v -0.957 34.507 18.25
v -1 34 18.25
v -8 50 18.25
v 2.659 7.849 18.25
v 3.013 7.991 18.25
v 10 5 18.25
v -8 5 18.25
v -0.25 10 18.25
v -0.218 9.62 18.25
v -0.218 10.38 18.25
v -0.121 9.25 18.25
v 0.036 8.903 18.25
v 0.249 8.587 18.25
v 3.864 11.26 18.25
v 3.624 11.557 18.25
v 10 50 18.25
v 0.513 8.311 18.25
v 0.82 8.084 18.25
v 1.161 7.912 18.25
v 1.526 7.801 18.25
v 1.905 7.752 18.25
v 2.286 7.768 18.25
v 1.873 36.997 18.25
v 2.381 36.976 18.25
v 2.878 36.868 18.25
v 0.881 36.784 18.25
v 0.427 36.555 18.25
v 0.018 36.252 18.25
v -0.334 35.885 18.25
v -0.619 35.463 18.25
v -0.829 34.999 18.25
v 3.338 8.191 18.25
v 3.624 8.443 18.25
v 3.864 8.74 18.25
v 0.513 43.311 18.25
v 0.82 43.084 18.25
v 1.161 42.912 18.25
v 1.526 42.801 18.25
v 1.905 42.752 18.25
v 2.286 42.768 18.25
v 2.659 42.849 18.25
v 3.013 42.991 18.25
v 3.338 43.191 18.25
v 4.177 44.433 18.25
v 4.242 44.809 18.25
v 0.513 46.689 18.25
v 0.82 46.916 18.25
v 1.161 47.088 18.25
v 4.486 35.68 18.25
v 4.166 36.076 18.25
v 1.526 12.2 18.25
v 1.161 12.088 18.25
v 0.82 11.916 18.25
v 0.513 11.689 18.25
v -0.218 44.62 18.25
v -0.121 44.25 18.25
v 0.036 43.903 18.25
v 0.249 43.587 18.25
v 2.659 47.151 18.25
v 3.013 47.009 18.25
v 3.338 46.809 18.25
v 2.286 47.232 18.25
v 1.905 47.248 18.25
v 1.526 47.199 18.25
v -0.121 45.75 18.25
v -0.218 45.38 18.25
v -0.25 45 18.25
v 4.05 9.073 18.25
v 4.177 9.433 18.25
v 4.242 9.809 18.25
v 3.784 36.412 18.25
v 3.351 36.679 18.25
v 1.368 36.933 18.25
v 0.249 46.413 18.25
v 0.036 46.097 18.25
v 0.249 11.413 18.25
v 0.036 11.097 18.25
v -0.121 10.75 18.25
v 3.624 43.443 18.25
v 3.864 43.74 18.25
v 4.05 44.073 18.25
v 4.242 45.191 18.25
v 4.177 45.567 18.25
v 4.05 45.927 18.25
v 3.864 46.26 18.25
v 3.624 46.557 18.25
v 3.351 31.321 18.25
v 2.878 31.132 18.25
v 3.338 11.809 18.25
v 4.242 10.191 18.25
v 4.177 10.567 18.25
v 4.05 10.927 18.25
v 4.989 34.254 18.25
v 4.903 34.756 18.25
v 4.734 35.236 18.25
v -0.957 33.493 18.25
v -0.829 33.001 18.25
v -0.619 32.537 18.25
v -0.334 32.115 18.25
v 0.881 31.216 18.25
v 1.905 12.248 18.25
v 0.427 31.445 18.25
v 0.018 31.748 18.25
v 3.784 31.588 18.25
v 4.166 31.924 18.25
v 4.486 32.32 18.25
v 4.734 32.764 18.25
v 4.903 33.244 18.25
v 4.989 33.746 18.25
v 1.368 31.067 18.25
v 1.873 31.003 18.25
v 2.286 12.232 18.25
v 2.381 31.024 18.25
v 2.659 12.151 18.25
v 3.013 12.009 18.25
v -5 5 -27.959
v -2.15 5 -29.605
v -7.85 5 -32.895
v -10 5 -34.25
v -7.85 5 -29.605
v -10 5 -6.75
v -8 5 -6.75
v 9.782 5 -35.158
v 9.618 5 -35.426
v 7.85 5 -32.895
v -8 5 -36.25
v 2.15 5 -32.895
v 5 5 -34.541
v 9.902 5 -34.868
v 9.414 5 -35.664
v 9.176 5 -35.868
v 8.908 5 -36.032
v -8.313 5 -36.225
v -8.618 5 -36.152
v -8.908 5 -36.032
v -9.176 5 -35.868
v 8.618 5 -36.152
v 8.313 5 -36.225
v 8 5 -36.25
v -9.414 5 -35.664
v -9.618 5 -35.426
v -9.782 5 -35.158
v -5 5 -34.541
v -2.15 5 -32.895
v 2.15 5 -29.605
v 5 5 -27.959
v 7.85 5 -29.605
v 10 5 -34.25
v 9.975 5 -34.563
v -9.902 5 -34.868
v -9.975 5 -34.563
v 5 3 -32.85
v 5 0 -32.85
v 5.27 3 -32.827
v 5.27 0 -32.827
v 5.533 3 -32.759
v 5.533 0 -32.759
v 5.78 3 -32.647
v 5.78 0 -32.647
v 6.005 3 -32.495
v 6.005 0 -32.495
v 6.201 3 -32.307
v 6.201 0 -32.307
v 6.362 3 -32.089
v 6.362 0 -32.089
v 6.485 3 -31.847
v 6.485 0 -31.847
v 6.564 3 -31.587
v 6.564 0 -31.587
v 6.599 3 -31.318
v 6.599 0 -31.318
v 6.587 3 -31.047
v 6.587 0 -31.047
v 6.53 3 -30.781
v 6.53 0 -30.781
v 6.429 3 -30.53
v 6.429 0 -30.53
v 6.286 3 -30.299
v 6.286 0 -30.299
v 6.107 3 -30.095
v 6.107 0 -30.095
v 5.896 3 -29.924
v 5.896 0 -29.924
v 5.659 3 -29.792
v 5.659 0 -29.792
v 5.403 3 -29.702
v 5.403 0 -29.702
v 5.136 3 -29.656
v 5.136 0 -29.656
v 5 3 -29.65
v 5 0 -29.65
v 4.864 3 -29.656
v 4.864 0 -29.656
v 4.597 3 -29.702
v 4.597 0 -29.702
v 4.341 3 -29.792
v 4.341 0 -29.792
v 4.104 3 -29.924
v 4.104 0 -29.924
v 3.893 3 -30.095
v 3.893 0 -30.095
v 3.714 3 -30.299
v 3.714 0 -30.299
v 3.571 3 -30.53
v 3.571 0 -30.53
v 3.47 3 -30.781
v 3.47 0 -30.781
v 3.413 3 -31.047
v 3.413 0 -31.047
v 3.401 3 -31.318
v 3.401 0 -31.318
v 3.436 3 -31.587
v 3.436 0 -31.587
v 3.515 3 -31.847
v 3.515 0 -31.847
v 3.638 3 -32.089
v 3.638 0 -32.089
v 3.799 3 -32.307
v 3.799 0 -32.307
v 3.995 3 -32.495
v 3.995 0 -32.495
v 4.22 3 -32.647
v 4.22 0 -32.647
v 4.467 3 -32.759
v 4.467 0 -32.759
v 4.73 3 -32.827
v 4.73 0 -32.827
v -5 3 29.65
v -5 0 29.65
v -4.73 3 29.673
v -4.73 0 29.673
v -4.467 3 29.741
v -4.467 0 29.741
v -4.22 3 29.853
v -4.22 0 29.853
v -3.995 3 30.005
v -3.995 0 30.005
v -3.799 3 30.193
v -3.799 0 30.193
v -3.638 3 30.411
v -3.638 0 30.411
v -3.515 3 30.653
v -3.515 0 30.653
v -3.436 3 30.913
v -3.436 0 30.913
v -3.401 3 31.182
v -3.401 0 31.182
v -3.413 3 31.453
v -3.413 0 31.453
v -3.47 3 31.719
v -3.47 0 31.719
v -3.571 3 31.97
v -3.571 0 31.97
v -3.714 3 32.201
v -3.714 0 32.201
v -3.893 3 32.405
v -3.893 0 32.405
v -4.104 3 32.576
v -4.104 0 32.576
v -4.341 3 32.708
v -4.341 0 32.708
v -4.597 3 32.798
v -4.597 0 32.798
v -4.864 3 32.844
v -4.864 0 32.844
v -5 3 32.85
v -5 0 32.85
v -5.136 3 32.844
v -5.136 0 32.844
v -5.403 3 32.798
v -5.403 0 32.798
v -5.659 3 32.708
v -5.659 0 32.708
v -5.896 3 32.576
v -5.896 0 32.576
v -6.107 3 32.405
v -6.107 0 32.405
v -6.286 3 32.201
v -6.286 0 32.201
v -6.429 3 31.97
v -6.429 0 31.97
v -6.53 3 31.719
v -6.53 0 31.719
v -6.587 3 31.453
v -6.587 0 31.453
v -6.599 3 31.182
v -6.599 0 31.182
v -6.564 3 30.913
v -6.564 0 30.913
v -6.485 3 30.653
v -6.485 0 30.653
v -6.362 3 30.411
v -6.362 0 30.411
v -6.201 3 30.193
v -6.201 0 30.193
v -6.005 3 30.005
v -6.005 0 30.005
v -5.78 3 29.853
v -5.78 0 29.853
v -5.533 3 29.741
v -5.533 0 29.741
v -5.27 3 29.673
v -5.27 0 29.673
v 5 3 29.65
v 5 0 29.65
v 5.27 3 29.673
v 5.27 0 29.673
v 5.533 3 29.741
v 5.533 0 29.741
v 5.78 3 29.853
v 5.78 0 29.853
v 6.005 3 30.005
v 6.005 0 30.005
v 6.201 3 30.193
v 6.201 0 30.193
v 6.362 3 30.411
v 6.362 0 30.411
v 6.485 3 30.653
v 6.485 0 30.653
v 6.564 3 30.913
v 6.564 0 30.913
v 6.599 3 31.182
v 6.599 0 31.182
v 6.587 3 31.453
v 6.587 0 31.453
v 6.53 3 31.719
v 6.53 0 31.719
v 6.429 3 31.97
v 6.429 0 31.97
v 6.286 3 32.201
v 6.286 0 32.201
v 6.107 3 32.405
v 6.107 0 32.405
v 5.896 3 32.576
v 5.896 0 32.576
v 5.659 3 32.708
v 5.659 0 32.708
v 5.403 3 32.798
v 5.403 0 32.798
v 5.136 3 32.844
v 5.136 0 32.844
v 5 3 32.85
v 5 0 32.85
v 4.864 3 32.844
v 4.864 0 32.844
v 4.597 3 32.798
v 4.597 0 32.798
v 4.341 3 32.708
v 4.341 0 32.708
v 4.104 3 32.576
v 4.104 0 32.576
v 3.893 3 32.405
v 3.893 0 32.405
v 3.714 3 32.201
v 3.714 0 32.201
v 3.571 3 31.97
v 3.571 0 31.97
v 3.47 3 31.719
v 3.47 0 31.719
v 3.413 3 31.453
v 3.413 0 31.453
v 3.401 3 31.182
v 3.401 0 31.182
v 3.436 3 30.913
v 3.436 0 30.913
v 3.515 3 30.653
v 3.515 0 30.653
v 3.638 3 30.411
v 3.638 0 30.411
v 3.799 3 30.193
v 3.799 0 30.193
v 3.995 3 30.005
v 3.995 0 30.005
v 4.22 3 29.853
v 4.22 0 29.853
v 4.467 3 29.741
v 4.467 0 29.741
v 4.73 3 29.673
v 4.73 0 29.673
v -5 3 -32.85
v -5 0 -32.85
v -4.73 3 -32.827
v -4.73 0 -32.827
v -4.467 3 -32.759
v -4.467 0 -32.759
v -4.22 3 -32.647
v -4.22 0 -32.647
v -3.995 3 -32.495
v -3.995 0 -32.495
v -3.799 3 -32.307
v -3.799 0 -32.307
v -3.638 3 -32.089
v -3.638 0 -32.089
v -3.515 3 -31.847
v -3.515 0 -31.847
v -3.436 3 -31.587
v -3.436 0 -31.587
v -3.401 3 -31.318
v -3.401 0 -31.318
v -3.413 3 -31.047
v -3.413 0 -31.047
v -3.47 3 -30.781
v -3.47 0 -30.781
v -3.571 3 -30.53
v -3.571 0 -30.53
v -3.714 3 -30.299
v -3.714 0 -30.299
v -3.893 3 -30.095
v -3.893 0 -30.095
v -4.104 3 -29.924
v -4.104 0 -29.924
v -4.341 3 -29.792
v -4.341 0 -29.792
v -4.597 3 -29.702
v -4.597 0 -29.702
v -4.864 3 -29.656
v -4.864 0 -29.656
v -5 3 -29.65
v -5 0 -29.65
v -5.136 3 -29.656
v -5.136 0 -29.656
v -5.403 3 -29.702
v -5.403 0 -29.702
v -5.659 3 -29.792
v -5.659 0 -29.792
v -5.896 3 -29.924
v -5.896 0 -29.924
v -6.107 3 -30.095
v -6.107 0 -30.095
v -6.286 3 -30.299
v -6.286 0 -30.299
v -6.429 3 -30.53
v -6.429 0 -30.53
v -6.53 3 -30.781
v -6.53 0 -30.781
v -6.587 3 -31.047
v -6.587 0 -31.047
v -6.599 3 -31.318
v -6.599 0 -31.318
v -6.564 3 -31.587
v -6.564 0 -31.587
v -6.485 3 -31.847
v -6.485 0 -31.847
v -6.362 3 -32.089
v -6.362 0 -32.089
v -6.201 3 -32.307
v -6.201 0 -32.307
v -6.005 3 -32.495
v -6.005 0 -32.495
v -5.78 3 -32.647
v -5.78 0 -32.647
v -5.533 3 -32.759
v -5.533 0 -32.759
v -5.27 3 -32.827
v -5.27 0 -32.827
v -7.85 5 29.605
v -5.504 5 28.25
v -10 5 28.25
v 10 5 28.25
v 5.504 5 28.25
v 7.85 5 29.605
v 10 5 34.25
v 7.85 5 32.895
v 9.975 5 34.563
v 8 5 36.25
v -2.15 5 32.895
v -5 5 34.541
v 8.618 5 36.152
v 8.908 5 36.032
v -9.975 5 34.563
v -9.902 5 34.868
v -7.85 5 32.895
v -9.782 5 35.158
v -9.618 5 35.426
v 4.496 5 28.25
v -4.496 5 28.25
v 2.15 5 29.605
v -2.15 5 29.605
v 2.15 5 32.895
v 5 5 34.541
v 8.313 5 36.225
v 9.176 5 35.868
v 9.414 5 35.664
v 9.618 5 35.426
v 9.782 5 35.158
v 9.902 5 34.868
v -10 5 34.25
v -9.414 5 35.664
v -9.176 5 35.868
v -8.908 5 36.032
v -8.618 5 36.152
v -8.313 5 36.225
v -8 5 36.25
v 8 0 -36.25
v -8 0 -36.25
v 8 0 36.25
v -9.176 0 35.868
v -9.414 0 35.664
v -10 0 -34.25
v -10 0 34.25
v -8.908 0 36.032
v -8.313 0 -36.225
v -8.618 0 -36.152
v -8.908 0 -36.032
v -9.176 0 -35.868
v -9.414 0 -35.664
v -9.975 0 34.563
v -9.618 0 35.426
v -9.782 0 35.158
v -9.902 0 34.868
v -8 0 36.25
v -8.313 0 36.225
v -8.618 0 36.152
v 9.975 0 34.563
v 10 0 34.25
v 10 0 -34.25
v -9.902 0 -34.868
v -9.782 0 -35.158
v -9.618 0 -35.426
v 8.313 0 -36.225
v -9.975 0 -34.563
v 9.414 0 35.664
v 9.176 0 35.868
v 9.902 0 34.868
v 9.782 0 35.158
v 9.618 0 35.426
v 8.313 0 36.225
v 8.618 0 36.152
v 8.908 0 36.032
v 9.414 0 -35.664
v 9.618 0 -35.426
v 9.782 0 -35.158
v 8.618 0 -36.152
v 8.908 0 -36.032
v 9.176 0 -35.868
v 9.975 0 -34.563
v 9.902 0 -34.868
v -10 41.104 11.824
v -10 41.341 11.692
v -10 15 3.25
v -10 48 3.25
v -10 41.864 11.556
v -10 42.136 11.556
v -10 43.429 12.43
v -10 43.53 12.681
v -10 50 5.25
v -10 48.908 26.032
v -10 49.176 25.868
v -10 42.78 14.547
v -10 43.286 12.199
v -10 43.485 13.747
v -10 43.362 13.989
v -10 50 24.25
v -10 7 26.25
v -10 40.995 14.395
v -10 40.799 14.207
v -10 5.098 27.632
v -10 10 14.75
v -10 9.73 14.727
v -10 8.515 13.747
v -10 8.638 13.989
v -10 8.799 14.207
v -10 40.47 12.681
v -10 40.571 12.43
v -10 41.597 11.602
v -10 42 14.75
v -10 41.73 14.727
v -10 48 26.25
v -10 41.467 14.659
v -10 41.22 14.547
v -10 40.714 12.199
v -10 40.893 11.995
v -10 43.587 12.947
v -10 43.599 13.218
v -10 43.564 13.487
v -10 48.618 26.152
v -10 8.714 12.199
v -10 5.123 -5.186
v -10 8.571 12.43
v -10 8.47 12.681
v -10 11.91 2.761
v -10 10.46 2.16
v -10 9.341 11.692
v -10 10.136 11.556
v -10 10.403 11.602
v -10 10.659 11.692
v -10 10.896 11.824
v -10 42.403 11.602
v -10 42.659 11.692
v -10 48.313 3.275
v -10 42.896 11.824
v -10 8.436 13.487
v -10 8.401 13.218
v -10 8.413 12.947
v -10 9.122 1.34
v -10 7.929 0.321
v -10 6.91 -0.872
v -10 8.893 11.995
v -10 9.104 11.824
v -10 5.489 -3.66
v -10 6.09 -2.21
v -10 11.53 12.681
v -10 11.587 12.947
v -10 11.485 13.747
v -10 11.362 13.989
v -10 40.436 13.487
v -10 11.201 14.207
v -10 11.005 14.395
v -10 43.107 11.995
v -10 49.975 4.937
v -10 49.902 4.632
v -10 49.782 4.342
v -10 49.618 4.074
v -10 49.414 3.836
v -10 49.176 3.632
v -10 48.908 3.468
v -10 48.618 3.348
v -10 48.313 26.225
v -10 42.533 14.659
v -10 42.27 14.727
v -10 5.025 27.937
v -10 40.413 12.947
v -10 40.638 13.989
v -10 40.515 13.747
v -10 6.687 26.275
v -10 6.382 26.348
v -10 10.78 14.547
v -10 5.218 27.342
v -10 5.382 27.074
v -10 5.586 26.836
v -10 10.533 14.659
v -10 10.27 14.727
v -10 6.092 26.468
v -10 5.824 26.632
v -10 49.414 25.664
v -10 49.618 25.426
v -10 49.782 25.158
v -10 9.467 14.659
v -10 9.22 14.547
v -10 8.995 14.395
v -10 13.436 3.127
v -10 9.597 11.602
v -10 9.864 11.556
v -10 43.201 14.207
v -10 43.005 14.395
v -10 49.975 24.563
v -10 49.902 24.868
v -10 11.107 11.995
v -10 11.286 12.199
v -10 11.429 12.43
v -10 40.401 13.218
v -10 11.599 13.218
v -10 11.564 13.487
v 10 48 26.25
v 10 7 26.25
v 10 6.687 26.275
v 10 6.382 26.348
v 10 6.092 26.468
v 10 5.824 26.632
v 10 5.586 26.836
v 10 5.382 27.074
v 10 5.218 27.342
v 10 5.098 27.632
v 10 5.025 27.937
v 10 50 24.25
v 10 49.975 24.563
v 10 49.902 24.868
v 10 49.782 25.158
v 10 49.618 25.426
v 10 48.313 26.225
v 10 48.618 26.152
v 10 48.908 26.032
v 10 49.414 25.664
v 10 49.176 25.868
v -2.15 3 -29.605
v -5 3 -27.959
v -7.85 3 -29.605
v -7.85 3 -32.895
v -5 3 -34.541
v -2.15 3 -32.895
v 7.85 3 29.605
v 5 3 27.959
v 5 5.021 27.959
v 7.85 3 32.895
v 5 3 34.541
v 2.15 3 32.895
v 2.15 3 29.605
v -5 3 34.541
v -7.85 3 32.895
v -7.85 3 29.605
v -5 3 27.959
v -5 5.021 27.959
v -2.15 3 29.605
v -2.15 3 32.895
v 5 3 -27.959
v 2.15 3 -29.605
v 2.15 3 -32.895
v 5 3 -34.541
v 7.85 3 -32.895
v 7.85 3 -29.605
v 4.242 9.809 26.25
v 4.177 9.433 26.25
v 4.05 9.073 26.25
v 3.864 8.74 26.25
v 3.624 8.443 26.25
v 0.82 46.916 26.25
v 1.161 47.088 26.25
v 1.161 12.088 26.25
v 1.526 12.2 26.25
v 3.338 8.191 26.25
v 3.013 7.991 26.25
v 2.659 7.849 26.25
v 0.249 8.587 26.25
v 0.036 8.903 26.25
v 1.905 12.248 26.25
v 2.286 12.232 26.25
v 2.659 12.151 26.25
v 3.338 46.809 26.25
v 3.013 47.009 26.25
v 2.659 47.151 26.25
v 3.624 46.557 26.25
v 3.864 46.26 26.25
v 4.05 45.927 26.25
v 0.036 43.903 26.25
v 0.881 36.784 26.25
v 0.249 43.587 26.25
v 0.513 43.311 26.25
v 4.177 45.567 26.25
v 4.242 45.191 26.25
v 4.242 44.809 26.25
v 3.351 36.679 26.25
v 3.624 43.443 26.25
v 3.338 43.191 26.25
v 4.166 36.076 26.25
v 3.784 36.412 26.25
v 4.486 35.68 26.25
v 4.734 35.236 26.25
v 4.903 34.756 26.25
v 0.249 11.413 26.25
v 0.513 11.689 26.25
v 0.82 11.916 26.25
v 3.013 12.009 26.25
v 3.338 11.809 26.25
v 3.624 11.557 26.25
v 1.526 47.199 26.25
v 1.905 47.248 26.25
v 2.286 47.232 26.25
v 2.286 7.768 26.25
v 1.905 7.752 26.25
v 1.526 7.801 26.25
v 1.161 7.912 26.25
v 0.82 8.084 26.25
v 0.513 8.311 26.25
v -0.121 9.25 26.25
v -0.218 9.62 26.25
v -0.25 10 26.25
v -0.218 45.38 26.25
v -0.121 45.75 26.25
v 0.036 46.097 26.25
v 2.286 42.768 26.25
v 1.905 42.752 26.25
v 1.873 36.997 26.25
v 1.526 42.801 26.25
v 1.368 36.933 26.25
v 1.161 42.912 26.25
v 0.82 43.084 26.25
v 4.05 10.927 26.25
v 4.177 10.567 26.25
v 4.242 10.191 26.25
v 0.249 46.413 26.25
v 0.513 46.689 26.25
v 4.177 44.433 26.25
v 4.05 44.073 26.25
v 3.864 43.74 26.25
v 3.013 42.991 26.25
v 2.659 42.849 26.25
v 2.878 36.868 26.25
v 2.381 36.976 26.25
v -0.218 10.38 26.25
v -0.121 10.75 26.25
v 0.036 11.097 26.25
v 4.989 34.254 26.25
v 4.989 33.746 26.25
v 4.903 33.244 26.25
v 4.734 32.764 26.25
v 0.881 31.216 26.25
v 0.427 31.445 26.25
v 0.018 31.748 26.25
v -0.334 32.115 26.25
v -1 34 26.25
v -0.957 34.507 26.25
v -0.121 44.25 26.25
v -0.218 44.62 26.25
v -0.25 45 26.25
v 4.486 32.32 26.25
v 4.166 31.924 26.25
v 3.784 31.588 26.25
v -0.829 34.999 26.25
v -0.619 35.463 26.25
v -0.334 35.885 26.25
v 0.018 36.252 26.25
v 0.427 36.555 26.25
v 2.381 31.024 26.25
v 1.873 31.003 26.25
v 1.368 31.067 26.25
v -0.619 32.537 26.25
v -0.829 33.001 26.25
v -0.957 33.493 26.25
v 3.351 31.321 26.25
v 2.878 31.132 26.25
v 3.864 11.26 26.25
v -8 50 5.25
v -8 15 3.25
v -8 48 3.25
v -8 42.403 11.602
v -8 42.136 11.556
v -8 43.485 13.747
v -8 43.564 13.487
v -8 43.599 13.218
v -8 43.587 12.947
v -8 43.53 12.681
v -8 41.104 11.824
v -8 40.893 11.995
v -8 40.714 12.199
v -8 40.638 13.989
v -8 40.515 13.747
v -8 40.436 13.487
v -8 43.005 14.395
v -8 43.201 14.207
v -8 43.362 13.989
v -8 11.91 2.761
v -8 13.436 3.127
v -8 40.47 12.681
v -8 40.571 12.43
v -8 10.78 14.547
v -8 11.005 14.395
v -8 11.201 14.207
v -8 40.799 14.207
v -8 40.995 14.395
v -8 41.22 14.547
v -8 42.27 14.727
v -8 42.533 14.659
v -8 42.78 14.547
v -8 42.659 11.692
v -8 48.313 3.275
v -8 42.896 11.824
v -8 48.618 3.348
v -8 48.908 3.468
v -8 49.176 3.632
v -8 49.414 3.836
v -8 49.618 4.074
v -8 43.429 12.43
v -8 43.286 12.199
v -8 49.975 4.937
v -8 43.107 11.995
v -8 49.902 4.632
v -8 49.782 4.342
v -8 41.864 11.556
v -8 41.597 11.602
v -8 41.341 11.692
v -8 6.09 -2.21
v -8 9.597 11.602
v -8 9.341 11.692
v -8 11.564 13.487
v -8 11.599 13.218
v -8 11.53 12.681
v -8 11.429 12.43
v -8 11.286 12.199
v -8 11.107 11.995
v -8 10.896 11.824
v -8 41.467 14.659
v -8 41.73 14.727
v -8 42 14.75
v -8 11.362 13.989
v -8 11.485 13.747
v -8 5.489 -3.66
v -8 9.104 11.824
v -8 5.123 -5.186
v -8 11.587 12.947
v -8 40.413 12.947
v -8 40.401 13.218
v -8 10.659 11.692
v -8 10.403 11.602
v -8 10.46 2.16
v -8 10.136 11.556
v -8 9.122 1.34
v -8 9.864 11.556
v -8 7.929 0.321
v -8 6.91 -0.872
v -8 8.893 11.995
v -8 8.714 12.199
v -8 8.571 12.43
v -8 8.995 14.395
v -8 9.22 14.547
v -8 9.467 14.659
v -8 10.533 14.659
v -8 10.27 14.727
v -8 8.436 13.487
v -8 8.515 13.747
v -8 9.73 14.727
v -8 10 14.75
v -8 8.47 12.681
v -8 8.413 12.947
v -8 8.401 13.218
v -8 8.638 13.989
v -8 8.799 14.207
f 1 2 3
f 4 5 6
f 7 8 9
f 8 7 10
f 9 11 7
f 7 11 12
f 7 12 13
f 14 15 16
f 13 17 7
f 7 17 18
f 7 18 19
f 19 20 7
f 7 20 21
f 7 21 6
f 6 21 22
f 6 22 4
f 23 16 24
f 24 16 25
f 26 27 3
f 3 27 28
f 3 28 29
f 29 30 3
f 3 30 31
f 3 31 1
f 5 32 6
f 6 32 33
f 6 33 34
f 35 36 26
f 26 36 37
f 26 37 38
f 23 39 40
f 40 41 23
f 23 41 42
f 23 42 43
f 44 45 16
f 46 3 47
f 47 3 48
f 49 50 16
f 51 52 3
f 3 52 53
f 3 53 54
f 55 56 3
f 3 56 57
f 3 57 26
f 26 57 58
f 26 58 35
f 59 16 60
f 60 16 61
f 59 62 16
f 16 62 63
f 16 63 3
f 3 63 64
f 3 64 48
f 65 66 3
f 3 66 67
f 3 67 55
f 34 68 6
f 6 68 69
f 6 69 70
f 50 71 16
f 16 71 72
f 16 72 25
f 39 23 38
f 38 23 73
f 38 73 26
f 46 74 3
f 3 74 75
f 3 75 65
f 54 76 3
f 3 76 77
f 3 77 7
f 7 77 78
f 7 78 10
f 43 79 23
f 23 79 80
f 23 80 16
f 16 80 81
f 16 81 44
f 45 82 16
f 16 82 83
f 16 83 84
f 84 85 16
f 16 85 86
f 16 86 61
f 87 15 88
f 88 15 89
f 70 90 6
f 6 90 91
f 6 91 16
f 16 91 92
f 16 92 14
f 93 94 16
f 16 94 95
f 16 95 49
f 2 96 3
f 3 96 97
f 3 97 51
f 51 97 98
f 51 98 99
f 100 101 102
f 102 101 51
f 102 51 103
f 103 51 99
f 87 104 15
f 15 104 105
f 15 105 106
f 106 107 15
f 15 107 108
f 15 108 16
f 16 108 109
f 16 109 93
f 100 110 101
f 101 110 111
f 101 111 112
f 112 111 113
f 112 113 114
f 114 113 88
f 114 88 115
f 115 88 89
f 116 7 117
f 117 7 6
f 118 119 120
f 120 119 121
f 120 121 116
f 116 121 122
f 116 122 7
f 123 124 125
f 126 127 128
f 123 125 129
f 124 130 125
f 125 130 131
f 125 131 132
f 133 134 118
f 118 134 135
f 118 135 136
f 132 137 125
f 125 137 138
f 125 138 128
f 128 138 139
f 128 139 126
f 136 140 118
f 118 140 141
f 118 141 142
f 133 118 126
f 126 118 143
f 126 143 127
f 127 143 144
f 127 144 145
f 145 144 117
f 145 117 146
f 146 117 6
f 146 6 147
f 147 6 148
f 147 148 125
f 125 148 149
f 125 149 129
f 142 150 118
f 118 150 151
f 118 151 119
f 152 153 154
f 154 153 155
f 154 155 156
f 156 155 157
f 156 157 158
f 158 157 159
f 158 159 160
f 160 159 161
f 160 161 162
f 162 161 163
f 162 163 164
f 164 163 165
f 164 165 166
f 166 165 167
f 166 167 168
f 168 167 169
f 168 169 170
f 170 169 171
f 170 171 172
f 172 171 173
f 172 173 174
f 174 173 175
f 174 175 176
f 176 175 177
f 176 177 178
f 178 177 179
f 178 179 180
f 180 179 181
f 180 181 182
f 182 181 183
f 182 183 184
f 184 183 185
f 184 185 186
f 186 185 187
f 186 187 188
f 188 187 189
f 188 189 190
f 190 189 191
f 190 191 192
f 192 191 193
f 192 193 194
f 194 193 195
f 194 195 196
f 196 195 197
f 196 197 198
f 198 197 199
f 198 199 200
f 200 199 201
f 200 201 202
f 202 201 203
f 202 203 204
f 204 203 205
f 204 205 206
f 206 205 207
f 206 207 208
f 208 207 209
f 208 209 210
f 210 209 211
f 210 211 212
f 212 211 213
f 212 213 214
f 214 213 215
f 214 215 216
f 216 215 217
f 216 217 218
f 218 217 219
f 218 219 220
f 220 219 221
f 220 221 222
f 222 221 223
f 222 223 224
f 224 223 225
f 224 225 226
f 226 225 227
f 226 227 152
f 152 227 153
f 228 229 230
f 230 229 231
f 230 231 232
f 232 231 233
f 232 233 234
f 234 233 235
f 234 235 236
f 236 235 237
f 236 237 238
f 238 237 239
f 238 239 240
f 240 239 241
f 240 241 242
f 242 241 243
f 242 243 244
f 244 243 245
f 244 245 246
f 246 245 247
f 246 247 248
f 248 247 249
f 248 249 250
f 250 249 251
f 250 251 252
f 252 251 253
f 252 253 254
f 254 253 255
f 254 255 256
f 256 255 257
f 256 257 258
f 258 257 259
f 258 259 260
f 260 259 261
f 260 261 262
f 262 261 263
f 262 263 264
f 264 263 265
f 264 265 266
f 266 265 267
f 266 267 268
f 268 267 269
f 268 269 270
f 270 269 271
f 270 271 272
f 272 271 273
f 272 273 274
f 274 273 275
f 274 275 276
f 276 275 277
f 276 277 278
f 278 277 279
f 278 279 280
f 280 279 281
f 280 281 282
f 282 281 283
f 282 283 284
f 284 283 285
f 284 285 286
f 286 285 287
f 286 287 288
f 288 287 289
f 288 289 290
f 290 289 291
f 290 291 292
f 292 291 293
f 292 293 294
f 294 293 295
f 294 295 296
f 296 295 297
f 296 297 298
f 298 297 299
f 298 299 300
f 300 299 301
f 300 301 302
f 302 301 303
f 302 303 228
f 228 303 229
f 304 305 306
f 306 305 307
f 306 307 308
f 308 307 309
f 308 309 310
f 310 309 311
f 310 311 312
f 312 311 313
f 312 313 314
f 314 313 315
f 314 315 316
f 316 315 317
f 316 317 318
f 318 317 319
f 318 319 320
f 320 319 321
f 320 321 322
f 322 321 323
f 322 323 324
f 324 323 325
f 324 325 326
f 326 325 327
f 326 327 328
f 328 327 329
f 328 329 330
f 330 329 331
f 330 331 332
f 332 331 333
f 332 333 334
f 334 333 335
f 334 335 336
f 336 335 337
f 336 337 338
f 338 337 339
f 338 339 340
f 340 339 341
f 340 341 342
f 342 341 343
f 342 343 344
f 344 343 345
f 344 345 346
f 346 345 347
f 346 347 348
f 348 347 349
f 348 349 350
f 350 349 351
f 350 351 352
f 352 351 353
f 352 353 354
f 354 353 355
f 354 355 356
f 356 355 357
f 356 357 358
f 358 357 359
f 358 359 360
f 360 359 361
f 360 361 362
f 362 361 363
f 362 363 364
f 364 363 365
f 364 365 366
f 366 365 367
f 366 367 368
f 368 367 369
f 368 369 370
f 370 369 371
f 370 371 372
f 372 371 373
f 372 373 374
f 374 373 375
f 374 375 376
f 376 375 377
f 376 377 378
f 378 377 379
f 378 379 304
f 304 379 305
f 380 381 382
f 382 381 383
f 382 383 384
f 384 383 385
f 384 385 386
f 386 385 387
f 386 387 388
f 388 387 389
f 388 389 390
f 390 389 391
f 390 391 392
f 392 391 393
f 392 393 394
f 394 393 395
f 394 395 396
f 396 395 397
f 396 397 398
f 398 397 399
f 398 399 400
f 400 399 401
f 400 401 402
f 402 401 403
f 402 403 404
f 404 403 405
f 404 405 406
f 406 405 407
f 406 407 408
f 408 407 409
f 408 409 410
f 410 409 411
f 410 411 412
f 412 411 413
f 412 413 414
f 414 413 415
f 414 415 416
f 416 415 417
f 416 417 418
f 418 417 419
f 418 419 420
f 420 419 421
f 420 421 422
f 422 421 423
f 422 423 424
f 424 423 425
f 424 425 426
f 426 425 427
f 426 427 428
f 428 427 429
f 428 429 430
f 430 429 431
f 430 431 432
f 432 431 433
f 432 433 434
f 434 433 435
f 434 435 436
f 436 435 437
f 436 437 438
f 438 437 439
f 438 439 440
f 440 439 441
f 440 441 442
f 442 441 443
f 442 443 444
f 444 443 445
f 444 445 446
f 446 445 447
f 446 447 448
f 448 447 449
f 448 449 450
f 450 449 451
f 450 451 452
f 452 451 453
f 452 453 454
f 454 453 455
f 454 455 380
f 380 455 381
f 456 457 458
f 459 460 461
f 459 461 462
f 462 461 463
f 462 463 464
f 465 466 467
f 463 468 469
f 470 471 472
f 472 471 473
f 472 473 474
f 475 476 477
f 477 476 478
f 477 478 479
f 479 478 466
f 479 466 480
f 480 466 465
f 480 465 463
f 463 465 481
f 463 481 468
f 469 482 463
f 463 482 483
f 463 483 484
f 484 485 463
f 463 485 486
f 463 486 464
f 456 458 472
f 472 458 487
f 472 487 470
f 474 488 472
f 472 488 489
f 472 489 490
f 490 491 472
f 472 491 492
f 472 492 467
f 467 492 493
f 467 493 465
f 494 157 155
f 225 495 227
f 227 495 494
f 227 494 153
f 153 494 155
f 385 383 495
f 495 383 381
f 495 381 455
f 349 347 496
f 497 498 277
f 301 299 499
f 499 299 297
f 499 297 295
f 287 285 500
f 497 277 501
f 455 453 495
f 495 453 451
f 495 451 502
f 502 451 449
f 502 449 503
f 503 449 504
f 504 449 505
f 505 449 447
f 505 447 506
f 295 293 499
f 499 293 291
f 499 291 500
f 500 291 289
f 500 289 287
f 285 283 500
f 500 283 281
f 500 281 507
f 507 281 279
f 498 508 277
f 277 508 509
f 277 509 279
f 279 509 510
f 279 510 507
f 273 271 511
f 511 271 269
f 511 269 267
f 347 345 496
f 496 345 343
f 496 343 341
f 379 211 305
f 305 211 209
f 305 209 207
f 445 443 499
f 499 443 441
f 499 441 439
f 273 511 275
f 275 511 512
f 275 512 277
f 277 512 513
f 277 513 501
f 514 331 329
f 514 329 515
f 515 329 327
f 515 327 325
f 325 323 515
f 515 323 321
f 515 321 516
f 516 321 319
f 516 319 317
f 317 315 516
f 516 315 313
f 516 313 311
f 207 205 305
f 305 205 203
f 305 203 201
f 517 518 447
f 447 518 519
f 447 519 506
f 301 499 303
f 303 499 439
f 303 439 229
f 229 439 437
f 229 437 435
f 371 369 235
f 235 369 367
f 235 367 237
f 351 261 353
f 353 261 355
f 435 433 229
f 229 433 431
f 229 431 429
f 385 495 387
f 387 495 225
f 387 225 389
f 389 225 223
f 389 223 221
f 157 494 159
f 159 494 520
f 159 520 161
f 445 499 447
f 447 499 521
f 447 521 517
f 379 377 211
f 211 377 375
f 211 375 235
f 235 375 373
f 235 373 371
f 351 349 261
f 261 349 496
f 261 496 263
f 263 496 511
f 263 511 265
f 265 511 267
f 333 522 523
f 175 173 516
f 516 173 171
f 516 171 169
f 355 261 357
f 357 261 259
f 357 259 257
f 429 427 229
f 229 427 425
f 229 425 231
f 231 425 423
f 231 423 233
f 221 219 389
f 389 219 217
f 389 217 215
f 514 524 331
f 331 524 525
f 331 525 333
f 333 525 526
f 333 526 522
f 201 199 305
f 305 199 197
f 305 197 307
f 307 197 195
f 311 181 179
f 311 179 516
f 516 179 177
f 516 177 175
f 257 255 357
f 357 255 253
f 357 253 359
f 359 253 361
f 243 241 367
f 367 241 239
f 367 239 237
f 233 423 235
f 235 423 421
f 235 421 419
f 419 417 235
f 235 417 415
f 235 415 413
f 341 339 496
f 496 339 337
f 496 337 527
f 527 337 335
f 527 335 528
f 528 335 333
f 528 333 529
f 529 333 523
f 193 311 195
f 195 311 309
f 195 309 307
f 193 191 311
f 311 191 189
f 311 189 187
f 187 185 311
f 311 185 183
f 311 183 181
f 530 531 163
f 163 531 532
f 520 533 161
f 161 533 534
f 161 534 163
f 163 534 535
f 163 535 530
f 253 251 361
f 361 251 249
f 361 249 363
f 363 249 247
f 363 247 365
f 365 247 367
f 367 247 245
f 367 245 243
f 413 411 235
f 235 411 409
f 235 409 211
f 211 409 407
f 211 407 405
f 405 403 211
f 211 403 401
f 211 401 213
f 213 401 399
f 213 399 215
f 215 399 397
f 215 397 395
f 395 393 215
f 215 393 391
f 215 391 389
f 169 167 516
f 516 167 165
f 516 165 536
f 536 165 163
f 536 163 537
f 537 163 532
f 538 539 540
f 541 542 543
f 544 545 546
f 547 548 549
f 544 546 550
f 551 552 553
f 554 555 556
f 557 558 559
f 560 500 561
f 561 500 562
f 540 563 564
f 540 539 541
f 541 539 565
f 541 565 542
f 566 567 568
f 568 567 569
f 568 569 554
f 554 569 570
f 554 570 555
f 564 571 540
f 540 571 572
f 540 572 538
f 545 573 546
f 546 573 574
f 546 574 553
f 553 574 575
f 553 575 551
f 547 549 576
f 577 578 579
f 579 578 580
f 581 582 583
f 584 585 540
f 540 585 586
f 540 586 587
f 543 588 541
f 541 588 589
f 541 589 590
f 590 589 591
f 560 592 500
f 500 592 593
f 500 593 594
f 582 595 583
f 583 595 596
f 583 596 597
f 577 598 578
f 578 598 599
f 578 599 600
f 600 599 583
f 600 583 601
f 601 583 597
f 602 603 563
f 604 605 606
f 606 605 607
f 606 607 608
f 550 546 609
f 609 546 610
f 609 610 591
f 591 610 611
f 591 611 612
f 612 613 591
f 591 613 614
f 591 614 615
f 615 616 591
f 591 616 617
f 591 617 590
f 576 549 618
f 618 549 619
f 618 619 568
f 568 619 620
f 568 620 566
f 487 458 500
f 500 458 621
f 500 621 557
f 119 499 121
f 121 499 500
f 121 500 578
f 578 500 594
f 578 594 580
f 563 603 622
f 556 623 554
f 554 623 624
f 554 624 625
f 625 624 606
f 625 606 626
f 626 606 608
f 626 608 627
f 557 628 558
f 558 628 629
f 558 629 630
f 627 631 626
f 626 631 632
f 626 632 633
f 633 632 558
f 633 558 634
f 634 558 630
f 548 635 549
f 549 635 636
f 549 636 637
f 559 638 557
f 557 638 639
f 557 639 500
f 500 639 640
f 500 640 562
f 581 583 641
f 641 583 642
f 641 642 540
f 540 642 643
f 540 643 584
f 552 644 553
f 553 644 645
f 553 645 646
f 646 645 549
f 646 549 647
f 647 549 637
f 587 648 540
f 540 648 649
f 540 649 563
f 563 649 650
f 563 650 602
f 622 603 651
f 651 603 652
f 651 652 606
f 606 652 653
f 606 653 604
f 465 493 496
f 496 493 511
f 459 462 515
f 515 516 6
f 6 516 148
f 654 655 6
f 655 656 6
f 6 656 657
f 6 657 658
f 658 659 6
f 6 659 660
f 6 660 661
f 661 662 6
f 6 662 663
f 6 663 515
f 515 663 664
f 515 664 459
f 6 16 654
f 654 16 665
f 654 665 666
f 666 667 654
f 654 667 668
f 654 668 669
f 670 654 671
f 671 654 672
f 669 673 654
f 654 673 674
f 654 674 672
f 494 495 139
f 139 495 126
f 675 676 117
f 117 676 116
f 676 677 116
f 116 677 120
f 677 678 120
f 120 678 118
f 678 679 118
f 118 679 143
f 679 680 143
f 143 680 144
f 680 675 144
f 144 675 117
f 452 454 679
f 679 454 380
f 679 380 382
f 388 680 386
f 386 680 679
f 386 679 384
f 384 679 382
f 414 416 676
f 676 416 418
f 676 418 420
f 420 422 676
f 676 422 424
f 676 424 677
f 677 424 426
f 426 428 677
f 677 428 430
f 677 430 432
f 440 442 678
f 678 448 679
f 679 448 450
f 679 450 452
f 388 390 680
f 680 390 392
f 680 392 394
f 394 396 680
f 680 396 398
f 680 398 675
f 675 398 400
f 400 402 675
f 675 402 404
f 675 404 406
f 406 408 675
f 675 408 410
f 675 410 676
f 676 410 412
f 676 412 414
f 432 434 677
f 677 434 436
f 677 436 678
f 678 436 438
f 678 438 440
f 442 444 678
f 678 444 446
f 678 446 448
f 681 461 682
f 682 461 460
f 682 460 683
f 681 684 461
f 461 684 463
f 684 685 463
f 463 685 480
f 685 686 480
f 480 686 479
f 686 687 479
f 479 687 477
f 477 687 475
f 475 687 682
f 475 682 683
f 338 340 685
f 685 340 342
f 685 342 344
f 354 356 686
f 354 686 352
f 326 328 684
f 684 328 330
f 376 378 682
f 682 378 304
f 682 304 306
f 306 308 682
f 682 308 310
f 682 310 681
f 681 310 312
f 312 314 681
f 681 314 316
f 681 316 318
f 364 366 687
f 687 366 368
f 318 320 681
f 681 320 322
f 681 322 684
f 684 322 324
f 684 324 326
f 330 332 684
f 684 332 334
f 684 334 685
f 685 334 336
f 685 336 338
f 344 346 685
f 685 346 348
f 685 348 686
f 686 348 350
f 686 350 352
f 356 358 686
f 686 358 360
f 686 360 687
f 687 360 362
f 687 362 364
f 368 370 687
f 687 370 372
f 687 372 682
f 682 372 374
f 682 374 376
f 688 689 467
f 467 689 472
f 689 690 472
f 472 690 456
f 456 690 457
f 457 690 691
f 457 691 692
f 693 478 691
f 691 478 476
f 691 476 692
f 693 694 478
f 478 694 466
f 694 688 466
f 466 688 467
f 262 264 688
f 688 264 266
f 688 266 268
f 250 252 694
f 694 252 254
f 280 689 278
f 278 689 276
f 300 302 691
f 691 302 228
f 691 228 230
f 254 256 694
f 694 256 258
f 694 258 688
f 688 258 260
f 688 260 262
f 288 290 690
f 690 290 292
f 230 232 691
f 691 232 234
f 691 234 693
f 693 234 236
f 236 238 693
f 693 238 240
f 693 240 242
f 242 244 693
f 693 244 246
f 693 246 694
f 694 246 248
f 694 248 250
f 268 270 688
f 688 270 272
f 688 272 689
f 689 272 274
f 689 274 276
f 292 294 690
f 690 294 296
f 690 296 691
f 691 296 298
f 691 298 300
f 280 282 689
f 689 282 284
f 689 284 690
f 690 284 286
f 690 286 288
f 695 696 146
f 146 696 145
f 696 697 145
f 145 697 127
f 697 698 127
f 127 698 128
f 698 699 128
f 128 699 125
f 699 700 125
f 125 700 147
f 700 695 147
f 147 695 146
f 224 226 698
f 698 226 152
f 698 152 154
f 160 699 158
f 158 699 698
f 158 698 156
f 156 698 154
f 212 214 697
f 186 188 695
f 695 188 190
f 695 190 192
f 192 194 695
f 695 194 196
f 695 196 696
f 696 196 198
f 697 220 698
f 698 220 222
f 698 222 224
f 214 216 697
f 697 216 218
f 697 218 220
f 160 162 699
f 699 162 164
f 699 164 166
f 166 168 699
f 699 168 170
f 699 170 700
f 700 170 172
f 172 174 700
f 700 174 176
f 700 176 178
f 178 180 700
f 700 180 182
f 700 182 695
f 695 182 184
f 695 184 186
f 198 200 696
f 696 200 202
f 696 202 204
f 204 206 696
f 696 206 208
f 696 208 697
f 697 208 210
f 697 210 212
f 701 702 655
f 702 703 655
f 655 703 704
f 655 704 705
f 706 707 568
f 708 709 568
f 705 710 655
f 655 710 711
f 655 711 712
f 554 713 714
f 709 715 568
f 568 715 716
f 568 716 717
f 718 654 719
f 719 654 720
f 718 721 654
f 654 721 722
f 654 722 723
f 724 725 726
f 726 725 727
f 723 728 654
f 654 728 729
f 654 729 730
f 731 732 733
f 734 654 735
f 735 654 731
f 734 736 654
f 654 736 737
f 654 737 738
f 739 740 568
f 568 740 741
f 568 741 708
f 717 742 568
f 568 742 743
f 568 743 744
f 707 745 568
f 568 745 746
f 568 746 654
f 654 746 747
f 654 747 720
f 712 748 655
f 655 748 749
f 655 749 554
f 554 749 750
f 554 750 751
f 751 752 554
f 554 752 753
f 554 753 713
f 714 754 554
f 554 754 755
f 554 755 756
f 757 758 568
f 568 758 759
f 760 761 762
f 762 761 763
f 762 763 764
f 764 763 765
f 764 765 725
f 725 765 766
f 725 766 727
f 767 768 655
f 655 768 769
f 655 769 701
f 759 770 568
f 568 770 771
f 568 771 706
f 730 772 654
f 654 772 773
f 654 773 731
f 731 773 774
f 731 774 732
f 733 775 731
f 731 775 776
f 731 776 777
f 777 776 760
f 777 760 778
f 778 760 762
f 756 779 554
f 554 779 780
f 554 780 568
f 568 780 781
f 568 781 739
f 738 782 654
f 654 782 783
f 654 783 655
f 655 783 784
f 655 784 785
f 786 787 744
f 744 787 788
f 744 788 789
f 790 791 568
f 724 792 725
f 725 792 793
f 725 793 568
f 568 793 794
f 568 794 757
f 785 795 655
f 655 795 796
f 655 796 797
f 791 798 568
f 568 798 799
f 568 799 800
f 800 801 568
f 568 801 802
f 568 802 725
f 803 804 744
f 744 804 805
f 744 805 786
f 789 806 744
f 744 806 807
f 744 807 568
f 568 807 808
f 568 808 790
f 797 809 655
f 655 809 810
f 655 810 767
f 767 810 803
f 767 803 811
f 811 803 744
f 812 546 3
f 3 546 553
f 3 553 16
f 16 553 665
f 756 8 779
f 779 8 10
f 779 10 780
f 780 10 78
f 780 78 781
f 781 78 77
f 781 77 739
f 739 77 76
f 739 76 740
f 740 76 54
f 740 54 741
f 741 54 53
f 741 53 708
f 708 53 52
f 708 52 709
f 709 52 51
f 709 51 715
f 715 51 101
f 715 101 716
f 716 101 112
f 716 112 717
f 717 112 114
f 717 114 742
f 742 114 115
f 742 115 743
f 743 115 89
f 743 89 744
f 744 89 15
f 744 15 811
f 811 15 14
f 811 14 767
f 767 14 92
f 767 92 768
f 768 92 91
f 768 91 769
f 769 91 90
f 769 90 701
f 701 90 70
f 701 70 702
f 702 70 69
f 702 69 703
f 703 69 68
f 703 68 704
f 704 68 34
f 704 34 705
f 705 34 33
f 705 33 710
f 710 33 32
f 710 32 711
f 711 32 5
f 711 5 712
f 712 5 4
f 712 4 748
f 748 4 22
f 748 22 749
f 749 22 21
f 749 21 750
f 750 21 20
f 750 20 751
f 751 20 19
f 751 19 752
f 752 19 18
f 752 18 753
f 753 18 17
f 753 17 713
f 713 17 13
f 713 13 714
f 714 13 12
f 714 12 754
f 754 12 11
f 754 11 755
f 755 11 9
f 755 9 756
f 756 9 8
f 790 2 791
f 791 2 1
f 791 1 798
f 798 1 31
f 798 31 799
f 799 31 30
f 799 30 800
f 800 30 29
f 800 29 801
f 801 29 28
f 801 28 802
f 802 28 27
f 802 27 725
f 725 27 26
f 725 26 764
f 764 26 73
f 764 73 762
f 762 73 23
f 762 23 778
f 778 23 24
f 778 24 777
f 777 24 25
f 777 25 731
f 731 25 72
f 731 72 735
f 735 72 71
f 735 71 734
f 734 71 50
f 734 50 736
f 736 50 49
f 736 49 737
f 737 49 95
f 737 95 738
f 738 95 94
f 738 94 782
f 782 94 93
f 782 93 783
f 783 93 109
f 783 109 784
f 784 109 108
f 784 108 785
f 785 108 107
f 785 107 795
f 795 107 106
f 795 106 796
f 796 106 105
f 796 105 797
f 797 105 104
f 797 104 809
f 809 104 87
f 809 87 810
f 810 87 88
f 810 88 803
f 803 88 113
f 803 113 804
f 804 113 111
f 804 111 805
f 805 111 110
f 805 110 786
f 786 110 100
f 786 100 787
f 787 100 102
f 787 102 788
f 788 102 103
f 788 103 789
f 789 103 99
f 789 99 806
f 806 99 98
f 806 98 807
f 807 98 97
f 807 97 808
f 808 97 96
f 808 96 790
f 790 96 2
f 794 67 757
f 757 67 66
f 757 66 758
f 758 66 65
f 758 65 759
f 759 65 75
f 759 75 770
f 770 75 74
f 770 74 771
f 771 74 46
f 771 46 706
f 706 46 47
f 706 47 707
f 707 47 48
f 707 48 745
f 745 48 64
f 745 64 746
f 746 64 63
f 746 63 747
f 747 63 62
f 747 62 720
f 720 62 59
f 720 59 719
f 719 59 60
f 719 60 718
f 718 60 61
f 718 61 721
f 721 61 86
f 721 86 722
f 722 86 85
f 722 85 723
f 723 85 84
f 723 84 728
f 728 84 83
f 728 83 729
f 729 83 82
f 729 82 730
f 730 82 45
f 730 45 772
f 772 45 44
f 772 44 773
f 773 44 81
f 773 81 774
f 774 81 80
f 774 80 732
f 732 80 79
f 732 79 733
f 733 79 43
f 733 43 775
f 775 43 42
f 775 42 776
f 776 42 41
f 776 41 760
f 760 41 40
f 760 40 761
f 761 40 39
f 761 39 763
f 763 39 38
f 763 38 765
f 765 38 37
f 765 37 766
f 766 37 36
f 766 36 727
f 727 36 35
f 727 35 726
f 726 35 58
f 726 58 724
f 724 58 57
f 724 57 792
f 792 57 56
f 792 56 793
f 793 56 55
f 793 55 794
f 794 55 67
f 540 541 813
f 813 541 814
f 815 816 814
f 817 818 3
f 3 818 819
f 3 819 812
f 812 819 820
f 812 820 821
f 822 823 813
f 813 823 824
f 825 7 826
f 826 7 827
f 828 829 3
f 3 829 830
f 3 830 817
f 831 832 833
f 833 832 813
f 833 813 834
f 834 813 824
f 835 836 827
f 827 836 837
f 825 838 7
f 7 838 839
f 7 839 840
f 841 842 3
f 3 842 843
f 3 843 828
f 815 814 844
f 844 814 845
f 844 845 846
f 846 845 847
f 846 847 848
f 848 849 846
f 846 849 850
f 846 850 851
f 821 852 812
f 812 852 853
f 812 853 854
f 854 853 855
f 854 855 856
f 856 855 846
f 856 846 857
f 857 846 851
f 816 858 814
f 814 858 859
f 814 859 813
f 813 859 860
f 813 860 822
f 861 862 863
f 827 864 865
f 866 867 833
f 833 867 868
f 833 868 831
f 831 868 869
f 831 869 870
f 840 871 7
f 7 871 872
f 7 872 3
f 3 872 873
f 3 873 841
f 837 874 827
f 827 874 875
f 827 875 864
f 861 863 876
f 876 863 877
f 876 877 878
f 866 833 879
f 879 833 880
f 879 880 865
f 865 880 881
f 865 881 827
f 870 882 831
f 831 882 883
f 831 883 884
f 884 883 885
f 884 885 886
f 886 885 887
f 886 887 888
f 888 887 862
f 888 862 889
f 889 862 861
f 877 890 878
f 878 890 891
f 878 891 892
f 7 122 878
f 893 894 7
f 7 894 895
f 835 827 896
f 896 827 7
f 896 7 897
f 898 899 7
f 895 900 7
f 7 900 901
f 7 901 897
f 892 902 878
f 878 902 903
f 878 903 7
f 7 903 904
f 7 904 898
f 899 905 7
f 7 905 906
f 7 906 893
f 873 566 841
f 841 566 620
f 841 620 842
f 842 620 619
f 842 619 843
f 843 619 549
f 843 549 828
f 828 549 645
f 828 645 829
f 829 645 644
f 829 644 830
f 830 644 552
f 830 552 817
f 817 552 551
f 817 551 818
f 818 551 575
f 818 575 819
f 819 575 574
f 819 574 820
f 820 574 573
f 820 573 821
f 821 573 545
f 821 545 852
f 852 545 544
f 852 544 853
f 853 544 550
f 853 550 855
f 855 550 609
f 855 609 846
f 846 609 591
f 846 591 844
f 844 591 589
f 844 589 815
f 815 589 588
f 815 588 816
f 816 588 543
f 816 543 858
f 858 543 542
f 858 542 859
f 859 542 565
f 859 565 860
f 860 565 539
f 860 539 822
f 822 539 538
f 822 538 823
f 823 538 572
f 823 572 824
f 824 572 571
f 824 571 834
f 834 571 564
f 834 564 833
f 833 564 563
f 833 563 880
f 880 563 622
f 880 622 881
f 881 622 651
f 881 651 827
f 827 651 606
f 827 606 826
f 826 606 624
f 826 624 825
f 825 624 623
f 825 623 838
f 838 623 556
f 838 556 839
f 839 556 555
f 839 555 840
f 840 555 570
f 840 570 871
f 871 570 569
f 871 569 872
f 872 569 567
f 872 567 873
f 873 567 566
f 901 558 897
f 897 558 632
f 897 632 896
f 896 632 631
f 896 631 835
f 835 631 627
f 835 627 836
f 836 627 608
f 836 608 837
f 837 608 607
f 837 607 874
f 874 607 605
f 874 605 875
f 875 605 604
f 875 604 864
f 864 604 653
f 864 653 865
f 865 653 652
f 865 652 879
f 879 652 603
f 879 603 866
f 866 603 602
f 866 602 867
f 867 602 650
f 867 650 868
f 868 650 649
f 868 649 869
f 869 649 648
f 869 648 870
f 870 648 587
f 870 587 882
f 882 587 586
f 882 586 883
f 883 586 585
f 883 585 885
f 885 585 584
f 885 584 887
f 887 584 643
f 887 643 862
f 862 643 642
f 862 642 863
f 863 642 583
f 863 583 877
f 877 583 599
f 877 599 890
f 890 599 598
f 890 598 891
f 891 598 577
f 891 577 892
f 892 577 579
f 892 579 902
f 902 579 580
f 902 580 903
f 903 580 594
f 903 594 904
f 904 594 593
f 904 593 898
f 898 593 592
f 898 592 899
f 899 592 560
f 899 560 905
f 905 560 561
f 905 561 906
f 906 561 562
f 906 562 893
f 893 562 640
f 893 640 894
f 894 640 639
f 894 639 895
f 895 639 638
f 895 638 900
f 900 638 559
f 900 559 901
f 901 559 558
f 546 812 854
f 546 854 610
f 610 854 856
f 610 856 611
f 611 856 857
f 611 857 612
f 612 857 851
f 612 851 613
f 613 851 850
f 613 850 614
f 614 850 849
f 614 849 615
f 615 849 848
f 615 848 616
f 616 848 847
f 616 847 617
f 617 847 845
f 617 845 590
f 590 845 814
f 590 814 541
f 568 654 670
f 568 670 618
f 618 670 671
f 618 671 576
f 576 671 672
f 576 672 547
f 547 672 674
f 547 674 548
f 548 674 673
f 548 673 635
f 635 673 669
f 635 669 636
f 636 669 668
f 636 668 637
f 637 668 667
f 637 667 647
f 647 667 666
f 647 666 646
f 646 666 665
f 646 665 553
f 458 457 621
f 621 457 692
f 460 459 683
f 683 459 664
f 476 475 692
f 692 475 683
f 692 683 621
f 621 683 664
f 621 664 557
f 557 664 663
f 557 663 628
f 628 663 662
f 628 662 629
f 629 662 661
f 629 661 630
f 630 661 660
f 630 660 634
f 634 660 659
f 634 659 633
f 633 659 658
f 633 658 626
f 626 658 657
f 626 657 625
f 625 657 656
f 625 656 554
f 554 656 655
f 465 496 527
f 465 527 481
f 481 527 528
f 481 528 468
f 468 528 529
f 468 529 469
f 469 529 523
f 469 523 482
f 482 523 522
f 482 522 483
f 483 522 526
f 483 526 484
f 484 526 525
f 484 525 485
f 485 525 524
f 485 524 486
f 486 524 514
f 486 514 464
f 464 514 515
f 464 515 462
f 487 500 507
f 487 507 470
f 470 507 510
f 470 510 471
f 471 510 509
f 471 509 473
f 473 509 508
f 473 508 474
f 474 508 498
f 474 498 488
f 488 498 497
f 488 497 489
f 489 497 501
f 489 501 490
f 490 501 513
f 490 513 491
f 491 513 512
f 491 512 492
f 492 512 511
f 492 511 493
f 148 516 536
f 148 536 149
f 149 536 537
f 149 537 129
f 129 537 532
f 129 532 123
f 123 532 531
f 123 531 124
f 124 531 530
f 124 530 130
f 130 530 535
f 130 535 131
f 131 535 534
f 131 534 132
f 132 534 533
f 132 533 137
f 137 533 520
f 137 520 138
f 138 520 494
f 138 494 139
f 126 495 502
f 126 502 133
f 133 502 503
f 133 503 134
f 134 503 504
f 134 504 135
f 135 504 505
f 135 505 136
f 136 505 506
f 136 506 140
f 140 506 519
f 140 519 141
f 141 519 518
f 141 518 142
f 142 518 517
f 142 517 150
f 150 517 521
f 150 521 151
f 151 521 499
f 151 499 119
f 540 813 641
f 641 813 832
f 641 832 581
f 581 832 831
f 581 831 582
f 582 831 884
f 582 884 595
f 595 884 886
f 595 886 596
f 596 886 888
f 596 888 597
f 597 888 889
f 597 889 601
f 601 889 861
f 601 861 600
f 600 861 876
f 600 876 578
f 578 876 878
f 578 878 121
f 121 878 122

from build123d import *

# Parameters (mm, degrees)
CROQUIS1_W              = 20
CROQUIS1_H              = 72.5
CROQUIS1_R              = 1.6
SALIENTE_EXTRUIR1_DEPTH = 5
CORTAR_EXTRUIR1_DEPTH   = 2
CROQUIS3_W              = 20
CROQUIS3_H              = 8
SALIENTE_EXTRUIR2_DEPTH = 45
CROQUIS4_R              = 2.25
CROQUIS4_R_2            = 3
CORTAR_EXTRUIR2_DEPTH   = 45
CROQUIS5_W              = 15
CROQUIS5_H              = 45
CROQUIS5_R              = 1.6
SALIENTE_EXTRUIR3_DEPTH = 2
REDONDEO2_R             = 2
REDONDEO3_R             = 10


with BuildPart() as part:
    # Croquis1 → Saliente-Extruir1 (new body)
    with BuildSketch(Plane(origin=(0, 0, 0), x_dir=(1, 0, 0), z_dir=(0, 1, 0))):
        Rectangle(CROQUIS1_W, CROQUIS1_H)
        with Locations(Location((-5, 31.25, 0), (0, 0, 270))):
            Circle(CROQUIS1_R, mode=Mode.SUBTRACT)
        with Locations(Location((5, 31.25, 0), (0, 0, 270))):
            Circle(CROQUIS1_R, mode=Mode.SUBTRACT)
        with Locations(Location((-5, -31.25, 0), (0, 0, 270))):
            Circle(CROQUIS1_R, mode=Mode.SUBTRACT)
        with Locations(Location((5, -31.25, 0), (0, 0, 270))):
            Circle(CROQUIS1_R, mode=Mode.SUBTRACT)
    extrude(amount=SALIENTE_EXTRUIR1_DEPTH)

    # Croquis2 → Cortar-Extruir1 (cut)
    with BuildSketch(Plane(origin=(0, 5, 0), x_dir=(1, 0, 0), z_dir=(0, 1, 0))):
        Polygon((-2.15, 29.604551733), (-2.15, 32.895448267), (-5, 34.540896534), (-7.85, 32.895448267), (-7.85, 29.604551733), (-5, 27.959103466), align=None)
        Polygon((5, 27.959103466), (7.85, 29.604551733), (7.85, 32.895448267), (5, 34.540896534), (2.15, 32.895448267), (2.15, 29.604551733), align=None)
        Polygon((-5, -34.540896534), (-2.15, -32.895448267), (-2.15, -29.604551733), (-5, -27.959103466), (-7.85, -29.604551733), (-7.85, -32.895448267), align=None)
        Polygon((5, -27.959103466), (2.15, -29.604551733), (2.15, -32.895448267), (5, -34.540896534), (7.85, -32.895448267), (7.85, -29.604551733), align=None)
    extrude(amount=-CORTAR_EXTRUIR1_DEPTH, mode=Mode.SUBTRACT)

    # Croquis3 → Saliente-Extruir2 (add)
    with BuildSketch(Plane(origin=(0, 5, 0), x_dir=(1, 0, 0), z_dir=(0, 1, 0))):
        with Locations((0, -22.25)):
            Rectangle(CROQUIS3_W, CROQUIS3_H)
    extrude(amount=SALIENTE_EXTRUIR2_DEPTH)

    # Croquis4 → Cortar-Extruir2 (cut)
    with BuildSketch(Plane(origin=(0, 0, 18.25), x_dir=(-1, 0, 0), z_dir=(0, 0, -1))):
        with Locations((-2, 10)):
            Circle(CROQUIS4_R)
        with Locations((-2, 45)):
            Circle(CROQUIS4_R)
        with Locations((-2, 34)):
            Circle(CROQUIS4_R_2)
    extrude(amount=-CORTAR_EXTRUIR2_DEPTH, mode=Mode.SUBTRACT)

    # Croquis5 → Saliente-Extruir3 (add)
    with BuildSketch(Plane.ZY.offset(10)):
        with Locations((10.75, 27.5)):
            Rectangle(CROQUIS5_W, CROQUIS5_H)
        with Locations((13.15, 42)):
            Circle(CROQUIS5_R, mode=Mode.SUBTRACT)
        with Locations((13.15, 10)):
            Circle(CROQUIS5_R, mode=Mode.SUBTRACT)
    extrude(amount=-SALIENTE_EXTRUIR3_DEPTH)

    # Redondeo2
    # the kernel refuses this fillet: 2 mm, written as the material it adds along each edge
    with BuildSketch(Plane(origin=(-10, 5, 26.25), x_dir=(0, 1, 0), z_dir=(1, 0, 0))) as redondeo2_piece_1_section:
        with BuildLine():
            CenterArc((REDONDEO2_R, REDONDEO2_R), REDONDEO2_R, 180, 90)
            Line((0, REDONDEO2_R), (0, 0))
            Line((0, 0), (REDONDEO2_R, 0))
        make_face()
    redondeo2_piece_1 = extrude(amount=20, mode=Mode.PRIVATE)
    redondeo2_piece_1 = split(redondeo2_piece_1, bisect_by=Plane(origin=(-7.126844401, 5.386325592, 29.187037653), z_dir=(-0.4999999999999993, 0, -0.866025403784439)), keep=Keep.TOP, mode=Mode.PRIVATE)
    redondeo2_piece_1 = split(redondeo2_piece_1, bisect_by=Plane(origin=(-8.118654127, 5.386325592, 26.158547666), z_dir=(-0.49999999999999917, 0, 0.8660254037844392)), keep=Keep.TOP, mode=Mode.PRIVATE)
    add(redondeo2_piece_1)
    with BuildSketch(Plane(origin=(-10, 5, 26.25), x_dir=(0, 1, 0), z_dir=(1, 0, 0))) as redondeo2_piece_2_section:
        with BuildLine():
            CenterArc((REDONDEO2_R, REDONDEO2_R), REDONDEO2_R, 180, 90)
            Line((0, REDONDEO2_R), (0, 0))
            Line((0, 0), (REDONDEO2_R, 0))
        make_face()
    redondeo2_piece_2 = extrude(amount=20, mode=Mode.PRIVATE)
    redondeo2_piece_2 = split(redondeo2_piece_2, bisect_by=Plane(origin=(-4.392913505, 5.539408931, 27.608601914), z_dir=(-0.4999999999999993, 0, -0.866025403784439)), keep=Keep.TOP, mode=Mode.PRIVATE)
    redondeo2_piece_2 = split(redondeo2_piece_2, bisect_by=Plane(origin=(-5.607086495, 5.539408931, 27.608601914), z_dir=(0.49999999999999917, 0, -0.8660254037844392)), keep=Keep.TOP, mode=Mode.PRIVATE)
    add(redondeo2_piece_2)
    with BuildSketch(Plane(origin=(-10, 5, 26.25), x_dir=(0, 1, 0), z_dir=(1, 0, 0))) as redondeo2_piece_3_section:
        with BuildLine():
            CenterArc((REDONDEO2_R, REDONDEO2_R), REDONDEO2_R, 180, 90)
            Line((0, REDONDEO2_R), (0, 0))
            Line((0, 0), (REDONDEO2_R, 0))
        make_face()
    redondeo2_piece_3 = extrude(amount=20, mode=Mode.PRIVATE)
    redondeo2_piece_3 = split(redondeo2_piece_3, bisect_by=Plane(origin=(0.754095137, 5.386325592, 25.50772915), z_dir=(-0.4999999999999997, 0, 0.8660254037844388)), keep=Keep.TOP, mode=Mode.PRIVATE)
    redondeo2_piece_3 = split(redondeo2_piece_3, bisect_by=Plane(origin=(1.745904863, 5.386325592, 29.837856169), z_dir=(-0.5000000000000001, 0, -0.8660254037844386)), keep=Keep.TOP, mode=Mode.PRIVATE)
    redondeo2_piece_3 = split(redondeo2_piece_3, bisect_by=Plane(origin=(-0.754095137, 5.386325592, 25.50772915), z_dir=(0.4999999999999993, 0, 0.866025403784439)), keep=Keep.TOP, mode=Mode.PRIVATE)
    redondeo2_piece_3 = split(redondeo2_piece_3, bisect_by=Plane(origin=(-1.745904863, 5.386325592, 29.837856169), z_dir=(0.49999999999999917, 0, -0.8660254037844392)), keep=Keep.TOP, mode=Mode.PRIVATE)
    add(redondeo2_piece_3)
    with BuildSketch(Plane(origin=(-10, 5, 26.25), x_dir=(0, 1, 0), z_dir=(1, 0, 0))) as redondeo2_piece_4_section:
        with BuildLine():
            CenterArc((REDONDEO2_R, REDONDEO2_R), REDONDEO2_R, 180, 90)
            Line((0, REDONDEO2_R), (0, 0))
            Line((0, 0), (REDONDEO2_R, 0))
        make_face()
    redondeo2_piece_4 = extrude(amount=20, mode=Mode.PRIVATE)
    redondeo2_piece_4 = split(redondeo2_piece_4, bisect_by=Plane(origin=(4.392913505, 5.539408931, 27.608601914), z_dir=(0.4999999999999997, 0, -0.8660254037844388)), keep=Keep.TOP, mode=Mode.PRIVATE)
    redondeo2_piece_4 = split(redondeo2_piece_4, bisect_by=Plane(origin=(5.607086495, 5.539408931, 27.608601914), z_dir=(-0.5000000000000001, 0, -0.8660254037844386)), keep=Keep.TOP, mode=Mode.PRIVATE)
    add(redondeo2_piece_4)
    with BuildSketch(Plane(origin=(-10, 5, 26.25), x_dir=(0, 1, 0), z_dir=(1, 0, 0))) as redondeo2_piece_5_section:
        with BuildLine():
            CenterArc((REDONDEO2_R, REDONDEO2_R), REDONDEO2_R, 180, 90)
            Line((0, REDONDEO2_R), (0, 0))
            Line((0, 0), (REDONDEO2_R, 0))
        make_face()
    redondeo2_piece_5 = extrude(amount=20, mode=Mode.PRIVATE)
    redondeo2_piece_5 = split(redondeo2_piece_5, bisect_by=Plane(origin=(7.126844401, 5.386325592, 29.187037653), z_dir=(0.4999999999999997, 0, -0.8660254037844388)), keep=Keep.TOP, mode=Mode.PRIVATE)
    redondeo2_piece_5 = split(redondeo2_piece_5, bisect_by=Plane(origin=(8.118654127, 5.386325592, 26.158547666), z_dir=(0.5000000000000001, 0, 0.8660254037844386)), keep=Keep.TOP, mode=Mode.PRIVATE)
    add(redondeo2_piece_5)
    # the kernel refuses this fillet: 2 mm, written as the material it takes off along each edge
    with BuildSketch(Plane(origin=(-15, 50, 26.25), x_dir=(0, -1, 0), z_dir=(1, 0, 0))) as redondeo2_2_piece_1:
        with BuildLine():
            CenterArc((REDONDEO2_R, REDONDEO2_R), REDONDEO2_R, 180, 90)
            Line((0, REDONDEO2_R), (0, 0))
            Line((0, 0), (REDONDEO2_R, 0))
        make_face()
    extrude(amount=30, mode=Mode.SUBTRACT)
    with BuildSketch(Plane(origin=(-15, 50, 3.25), x_dir=(0, 0, 1), z_dir=(1, 0, 0))) as redondeo2_2_piece_2:
        with BuildLine():
            CenterArc((REDONDEO2_R, REDONDEO2_R), REDONDEO2_R, 180, 90)
            Line((0, REDONDEO2_R), (0, 0))
            Line((0, 0), (REDONDEO2_R, 0))
        make_face()
    extrude(amount=12, mode=Mode.SUBTRACT)
    with BuildSketch(Plane(origin=(-10, -5, -36.25), x_dir=(1, 0, 0), z_dir=(0, 1, 0)), Plane(origin=(10, -5, 36.25), x_dir=(-1, 0, 0), z_dir=(0, 1, 0))) as redondeo2_2_piece_3:
        with BuildLine():
            CenterArc((REDONDEO2_R, -REDONDEO2_R), REDONDEO2_R, 90, 90)
            Line((0, -REDONDEO2_R), (0, 0))
            Line((0, 0), (REDONDEO2_R, 0))
        make_face()
    extrude(amount=15, mode=Mode.SUBTRACT)
    with BuildSketch(Plane(origin=(10, -5, -36.25), x_dir=(-1, 0, 0), z_dir=(0, 1, 0)), Plane(origin=(-10, -5, 36.25), x_dir=(1, 0, 0), z_dir=(0, 1, 0))) as redondeo2_2_piece_4:
        with BuildLine():
            CenterArc((REDONDEO2_R, REDONDEO2_R), REDONDEO2_R, 180, 90)
            Line((0, REDONDEO2_R), (0, 0))
            Line((0, 0), (REDONDEO2_R, 0))
        make_face()
    extrude(amount=15, mode=Mode.SUBTRACT)

    # Redondeo3
    redondeo3_edges = [part.edges().sort_by_distance(p)[0] for p in [
        (-9, 5, 3.25),
    ]]
    fillet(redondeo3_edges, radius=REDONDEO3_R)


solid = part.part
